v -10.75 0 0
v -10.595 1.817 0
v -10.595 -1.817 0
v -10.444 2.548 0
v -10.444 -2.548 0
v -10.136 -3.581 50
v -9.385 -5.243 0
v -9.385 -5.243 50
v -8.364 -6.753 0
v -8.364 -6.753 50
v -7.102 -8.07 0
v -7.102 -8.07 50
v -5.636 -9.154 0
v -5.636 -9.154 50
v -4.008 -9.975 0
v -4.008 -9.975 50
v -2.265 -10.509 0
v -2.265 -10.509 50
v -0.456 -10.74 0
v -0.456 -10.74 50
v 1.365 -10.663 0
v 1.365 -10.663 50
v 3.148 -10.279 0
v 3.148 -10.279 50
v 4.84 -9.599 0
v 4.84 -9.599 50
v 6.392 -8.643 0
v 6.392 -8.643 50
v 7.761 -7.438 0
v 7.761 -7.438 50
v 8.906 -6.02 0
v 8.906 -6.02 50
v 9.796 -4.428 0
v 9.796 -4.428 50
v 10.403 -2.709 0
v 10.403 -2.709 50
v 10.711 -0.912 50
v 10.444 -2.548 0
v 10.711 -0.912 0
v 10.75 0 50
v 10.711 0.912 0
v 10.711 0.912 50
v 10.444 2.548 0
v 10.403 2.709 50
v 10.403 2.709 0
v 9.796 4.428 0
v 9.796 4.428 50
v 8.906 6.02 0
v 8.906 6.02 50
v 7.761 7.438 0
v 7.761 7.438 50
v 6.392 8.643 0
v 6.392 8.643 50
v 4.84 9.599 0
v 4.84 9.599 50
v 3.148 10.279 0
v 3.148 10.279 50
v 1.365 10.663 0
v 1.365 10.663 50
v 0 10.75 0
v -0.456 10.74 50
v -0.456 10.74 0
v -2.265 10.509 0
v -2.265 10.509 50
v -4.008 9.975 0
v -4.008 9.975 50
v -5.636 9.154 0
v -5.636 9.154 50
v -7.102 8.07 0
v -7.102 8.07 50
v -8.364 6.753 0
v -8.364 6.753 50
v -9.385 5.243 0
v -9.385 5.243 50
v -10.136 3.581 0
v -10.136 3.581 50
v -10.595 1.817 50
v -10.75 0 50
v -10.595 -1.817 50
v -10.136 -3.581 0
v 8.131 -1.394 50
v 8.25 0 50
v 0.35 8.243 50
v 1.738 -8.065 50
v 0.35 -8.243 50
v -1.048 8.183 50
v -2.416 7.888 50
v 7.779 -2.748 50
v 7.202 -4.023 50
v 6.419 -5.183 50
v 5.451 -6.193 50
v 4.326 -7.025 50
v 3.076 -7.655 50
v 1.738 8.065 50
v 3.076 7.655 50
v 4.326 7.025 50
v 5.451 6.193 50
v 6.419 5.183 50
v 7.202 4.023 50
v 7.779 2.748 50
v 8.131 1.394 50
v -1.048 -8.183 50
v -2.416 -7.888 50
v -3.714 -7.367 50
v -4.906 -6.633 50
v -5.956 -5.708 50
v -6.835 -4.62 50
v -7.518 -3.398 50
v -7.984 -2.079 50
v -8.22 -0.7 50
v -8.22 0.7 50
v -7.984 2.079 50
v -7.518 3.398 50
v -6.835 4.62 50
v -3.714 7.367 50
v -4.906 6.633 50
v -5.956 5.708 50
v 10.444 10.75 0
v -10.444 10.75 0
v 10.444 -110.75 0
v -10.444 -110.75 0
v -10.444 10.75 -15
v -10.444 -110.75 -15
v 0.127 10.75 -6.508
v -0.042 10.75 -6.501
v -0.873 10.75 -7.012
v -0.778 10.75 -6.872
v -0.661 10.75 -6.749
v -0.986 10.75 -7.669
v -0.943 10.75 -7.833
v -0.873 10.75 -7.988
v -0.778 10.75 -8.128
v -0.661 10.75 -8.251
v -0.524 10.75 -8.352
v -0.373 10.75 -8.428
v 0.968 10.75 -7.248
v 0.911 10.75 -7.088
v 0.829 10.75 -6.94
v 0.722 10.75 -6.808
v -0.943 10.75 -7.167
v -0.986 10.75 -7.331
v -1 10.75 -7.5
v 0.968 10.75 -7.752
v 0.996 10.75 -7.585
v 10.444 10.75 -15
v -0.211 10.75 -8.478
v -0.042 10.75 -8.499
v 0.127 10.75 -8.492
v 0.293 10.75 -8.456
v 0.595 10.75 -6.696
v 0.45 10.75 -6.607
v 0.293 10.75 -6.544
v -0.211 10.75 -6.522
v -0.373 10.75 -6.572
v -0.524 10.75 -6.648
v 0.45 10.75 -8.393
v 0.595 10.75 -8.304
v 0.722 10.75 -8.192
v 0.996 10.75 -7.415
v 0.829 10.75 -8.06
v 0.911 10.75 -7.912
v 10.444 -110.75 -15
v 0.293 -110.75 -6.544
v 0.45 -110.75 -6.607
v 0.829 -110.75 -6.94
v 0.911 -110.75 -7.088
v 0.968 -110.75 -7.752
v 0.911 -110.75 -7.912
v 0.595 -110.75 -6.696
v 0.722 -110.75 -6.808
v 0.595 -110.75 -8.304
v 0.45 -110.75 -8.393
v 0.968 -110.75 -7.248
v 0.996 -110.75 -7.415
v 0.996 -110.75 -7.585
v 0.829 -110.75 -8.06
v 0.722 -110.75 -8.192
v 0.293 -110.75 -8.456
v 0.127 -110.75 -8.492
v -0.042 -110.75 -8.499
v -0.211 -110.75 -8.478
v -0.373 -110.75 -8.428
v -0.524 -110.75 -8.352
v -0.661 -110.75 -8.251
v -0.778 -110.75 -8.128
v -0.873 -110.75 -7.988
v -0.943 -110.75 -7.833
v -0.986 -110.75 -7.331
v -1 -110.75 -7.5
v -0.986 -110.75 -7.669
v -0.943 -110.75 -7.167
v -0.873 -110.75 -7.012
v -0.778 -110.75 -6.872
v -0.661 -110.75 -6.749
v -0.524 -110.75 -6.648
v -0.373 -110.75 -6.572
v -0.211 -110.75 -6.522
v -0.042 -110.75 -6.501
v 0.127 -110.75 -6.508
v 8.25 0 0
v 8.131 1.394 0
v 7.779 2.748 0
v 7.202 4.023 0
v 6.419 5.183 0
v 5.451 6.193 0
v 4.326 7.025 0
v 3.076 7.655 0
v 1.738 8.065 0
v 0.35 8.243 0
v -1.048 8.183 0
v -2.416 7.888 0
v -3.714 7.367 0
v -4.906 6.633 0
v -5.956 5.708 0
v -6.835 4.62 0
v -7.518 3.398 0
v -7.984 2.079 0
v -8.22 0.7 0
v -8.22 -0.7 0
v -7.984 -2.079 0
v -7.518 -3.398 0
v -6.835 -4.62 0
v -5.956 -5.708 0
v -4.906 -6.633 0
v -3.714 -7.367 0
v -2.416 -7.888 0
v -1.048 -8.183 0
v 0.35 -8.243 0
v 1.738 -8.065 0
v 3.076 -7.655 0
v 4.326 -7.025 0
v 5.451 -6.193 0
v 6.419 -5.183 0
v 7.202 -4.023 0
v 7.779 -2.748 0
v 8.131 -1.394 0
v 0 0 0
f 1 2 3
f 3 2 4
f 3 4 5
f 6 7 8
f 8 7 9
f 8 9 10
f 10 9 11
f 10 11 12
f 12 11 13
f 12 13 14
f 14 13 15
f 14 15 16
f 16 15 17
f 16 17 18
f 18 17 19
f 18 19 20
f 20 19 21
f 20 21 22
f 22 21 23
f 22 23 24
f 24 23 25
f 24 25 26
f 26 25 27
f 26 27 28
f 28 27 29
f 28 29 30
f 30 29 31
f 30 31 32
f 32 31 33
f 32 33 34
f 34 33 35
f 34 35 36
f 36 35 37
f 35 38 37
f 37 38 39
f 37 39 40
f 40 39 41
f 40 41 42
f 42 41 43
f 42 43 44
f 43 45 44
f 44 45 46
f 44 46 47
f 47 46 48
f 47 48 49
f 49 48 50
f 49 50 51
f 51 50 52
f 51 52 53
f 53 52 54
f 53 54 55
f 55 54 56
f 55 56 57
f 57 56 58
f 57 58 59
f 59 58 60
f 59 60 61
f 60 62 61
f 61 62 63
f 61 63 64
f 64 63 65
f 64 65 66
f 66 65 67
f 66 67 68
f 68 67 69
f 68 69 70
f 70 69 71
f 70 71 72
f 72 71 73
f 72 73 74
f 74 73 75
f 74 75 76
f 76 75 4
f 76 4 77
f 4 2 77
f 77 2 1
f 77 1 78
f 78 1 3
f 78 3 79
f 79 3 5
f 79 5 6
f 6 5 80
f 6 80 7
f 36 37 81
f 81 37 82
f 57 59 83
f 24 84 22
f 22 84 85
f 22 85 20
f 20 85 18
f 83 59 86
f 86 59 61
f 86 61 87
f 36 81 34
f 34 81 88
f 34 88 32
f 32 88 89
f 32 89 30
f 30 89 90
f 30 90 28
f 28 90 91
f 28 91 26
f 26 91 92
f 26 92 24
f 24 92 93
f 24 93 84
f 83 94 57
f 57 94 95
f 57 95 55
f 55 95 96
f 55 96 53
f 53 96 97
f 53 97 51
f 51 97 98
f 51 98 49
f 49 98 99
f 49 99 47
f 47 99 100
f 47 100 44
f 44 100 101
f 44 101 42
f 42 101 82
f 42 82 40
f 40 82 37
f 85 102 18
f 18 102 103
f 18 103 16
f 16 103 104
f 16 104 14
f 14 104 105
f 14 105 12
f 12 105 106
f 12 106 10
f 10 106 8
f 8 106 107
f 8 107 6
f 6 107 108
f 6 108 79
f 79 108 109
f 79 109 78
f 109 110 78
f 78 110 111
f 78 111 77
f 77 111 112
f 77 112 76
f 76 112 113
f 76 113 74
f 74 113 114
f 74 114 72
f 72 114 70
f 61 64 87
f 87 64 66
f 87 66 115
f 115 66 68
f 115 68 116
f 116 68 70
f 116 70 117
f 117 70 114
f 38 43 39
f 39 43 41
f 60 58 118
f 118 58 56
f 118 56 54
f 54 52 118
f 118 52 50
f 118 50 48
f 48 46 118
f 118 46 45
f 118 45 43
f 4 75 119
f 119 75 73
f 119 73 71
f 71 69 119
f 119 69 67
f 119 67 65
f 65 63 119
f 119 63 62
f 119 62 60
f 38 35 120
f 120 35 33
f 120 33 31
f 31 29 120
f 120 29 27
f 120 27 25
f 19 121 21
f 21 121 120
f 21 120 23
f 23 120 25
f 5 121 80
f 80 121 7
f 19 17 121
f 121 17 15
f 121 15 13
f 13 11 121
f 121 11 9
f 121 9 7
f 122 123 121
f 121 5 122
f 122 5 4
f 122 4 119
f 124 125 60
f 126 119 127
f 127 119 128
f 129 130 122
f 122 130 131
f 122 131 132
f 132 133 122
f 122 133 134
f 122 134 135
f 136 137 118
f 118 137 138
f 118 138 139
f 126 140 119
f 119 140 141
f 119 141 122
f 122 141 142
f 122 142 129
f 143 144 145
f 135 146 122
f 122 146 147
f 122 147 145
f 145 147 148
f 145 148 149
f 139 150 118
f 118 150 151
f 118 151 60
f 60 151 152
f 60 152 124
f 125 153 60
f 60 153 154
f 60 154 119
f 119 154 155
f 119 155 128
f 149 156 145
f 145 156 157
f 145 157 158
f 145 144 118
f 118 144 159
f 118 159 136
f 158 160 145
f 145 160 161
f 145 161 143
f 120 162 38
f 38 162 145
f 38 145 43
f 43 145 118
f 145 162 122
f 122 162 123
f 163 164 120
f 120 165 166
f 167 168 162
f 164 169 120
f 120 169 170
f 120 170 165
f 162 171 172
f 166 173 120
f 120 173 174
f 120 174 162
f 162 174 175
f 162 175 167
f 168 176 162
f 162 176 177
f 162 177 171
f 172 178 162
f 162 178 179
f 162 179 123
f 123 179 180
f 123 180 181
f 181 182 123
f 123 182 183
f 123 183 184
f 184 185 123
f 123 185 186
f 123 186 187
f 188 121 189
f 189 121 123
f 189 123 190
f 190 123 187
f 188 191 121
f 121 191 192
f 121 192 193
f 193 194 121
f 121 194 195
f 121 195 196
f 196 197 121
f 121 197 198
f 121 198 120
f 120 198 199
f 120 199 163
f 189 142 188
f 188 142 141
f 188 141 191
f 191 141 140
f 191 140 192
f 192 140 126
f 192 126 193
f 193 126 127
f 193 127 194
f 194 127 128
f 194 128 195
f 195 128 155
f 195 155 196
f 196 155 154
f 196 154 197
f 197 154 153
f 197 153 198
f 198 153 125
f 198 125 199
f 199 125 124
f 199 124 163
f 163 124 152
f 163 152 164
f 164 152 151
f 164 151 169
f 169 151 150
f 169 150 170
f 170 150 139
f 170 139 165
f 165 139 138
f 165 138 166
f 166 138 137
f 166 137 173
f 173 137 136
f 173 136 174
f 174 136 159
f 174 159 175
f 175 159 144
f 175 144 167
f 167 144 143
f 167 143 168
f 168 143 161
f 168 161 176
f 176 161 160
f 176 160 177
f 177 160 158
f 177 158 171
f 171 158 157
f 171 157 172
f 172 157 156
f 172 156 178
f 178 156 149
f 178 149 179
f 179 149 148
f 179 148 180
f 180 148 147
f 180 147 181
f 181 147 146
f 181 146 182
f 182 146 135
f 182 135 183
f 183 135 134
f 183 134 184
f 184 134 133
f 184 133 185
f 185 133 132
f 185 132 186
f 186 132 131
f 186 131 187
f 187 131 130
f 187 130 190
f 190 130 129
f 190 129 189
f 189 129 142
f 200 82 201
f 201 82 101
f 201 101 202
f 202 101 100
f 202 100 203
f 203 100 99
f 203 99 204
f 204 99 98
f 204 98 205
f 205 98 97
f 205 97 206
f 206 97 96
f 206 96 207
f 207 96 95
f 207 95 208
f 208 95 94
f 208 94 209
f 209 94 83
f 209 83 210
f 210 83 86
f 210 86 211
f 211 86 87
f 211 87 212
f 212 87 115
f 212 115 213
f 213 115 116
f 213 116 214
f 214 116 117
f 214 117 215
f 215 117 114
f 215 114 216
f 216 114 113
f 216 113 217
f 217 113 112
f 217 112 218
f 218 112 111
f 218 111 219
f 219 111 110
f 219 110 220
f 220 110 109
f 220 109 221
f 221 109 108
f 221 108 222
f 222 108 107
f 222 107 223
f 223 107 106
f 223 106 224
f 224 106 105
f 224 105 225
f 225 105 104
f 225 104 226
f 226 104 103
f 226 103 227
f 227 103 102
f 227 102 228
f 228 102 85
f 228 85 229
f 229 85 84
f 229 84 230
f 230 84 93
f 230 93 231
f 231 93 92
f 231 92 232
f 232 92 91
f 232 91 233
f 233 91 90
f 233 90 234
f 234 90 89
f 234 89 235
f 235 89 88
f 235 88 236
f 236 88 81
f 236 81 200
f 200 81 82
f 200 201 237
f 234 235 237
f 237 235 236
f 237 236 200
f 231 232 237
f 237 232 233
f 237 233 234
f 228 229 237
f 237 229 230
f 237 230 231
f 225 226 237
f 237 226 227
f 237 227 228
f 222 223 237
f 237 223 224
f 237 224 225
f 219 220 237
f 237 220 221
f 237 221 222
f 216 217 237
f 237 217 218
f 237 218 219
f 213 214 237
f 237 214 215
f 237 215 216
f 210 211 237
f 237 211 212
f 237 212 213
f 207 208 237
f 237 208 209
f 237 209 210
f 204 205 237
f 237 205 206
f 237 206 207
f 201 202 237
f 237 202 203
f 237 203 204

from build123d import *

# Parameters (mm, degrees)
SKETCH_1_R          = 10.75
EXTRUDE_1_DEPTH     = 50
SKETCH_2_W          = 20.887285672
SKETCH_2_H          = 21.5
EXTRUDE_2_DEPTH     = 15
SKETCH_3_W          = 20.887285672
SKETCH_3_H          = 15
EXTRUDE_3_DEPTH     = 100
SKETCH_4_R          = 1
CUT_EXTRUDE_1_DEPTH = 130
SKETCH_5_R          = 8.25
CUT_EXTRUDE_4_DEPTH = 50


with BuildPart() as part:
    # 草图1 → 凸台-拉伸1 (new body)
    with BuildSketch(Plane.XY):
        Circle(SKETCH_1_R)
    extrude(amount=EXTRUDE_1_DEPTH)

    # 草图2 → 凸台-拉伸2 (add)
    with BuildSketch(Plane.XY):
        Rectangle(SKETCH_2_W, SKETCH_2_H)
    extrude(amount=-EXTRUDE_2_DEPTH)

    # 草图3 → 凸台-拉伸3 (add)
    with BuildSketch(Plane.XZ.offset(10.75)):
        with Locations((0, -7.5)):
            Rectangle(SKETCH_3_W, SKETCH_3_H)
    extrude(amount=EXTRUDE_3_DEPTH)

    # 草图4 → 切除-拉伸1 (cut)
    with BuildSketch(Plane(origin=(0, 10.75, 0), x_dir=(1, 0, 0), z_dir=(0, 1, 0))):
        with Locations((0, 7.5)):
            Circle(SKETCH_4_R)
    extrude(amount=-CUT_EXTRUDE_1_DEPTH, mode=Mode.SUBTRACT)

    # 草图5 → 切除-拉伸4 (cut)
    with BuildSketch(Plane.XY.offset(50)):
        Circle(SKETCH_5_R)
    extrude(amount=-CUT_EXTRUDE_4_DEPTH, mode=Mode.SUBTRACT)


solid = part.part
